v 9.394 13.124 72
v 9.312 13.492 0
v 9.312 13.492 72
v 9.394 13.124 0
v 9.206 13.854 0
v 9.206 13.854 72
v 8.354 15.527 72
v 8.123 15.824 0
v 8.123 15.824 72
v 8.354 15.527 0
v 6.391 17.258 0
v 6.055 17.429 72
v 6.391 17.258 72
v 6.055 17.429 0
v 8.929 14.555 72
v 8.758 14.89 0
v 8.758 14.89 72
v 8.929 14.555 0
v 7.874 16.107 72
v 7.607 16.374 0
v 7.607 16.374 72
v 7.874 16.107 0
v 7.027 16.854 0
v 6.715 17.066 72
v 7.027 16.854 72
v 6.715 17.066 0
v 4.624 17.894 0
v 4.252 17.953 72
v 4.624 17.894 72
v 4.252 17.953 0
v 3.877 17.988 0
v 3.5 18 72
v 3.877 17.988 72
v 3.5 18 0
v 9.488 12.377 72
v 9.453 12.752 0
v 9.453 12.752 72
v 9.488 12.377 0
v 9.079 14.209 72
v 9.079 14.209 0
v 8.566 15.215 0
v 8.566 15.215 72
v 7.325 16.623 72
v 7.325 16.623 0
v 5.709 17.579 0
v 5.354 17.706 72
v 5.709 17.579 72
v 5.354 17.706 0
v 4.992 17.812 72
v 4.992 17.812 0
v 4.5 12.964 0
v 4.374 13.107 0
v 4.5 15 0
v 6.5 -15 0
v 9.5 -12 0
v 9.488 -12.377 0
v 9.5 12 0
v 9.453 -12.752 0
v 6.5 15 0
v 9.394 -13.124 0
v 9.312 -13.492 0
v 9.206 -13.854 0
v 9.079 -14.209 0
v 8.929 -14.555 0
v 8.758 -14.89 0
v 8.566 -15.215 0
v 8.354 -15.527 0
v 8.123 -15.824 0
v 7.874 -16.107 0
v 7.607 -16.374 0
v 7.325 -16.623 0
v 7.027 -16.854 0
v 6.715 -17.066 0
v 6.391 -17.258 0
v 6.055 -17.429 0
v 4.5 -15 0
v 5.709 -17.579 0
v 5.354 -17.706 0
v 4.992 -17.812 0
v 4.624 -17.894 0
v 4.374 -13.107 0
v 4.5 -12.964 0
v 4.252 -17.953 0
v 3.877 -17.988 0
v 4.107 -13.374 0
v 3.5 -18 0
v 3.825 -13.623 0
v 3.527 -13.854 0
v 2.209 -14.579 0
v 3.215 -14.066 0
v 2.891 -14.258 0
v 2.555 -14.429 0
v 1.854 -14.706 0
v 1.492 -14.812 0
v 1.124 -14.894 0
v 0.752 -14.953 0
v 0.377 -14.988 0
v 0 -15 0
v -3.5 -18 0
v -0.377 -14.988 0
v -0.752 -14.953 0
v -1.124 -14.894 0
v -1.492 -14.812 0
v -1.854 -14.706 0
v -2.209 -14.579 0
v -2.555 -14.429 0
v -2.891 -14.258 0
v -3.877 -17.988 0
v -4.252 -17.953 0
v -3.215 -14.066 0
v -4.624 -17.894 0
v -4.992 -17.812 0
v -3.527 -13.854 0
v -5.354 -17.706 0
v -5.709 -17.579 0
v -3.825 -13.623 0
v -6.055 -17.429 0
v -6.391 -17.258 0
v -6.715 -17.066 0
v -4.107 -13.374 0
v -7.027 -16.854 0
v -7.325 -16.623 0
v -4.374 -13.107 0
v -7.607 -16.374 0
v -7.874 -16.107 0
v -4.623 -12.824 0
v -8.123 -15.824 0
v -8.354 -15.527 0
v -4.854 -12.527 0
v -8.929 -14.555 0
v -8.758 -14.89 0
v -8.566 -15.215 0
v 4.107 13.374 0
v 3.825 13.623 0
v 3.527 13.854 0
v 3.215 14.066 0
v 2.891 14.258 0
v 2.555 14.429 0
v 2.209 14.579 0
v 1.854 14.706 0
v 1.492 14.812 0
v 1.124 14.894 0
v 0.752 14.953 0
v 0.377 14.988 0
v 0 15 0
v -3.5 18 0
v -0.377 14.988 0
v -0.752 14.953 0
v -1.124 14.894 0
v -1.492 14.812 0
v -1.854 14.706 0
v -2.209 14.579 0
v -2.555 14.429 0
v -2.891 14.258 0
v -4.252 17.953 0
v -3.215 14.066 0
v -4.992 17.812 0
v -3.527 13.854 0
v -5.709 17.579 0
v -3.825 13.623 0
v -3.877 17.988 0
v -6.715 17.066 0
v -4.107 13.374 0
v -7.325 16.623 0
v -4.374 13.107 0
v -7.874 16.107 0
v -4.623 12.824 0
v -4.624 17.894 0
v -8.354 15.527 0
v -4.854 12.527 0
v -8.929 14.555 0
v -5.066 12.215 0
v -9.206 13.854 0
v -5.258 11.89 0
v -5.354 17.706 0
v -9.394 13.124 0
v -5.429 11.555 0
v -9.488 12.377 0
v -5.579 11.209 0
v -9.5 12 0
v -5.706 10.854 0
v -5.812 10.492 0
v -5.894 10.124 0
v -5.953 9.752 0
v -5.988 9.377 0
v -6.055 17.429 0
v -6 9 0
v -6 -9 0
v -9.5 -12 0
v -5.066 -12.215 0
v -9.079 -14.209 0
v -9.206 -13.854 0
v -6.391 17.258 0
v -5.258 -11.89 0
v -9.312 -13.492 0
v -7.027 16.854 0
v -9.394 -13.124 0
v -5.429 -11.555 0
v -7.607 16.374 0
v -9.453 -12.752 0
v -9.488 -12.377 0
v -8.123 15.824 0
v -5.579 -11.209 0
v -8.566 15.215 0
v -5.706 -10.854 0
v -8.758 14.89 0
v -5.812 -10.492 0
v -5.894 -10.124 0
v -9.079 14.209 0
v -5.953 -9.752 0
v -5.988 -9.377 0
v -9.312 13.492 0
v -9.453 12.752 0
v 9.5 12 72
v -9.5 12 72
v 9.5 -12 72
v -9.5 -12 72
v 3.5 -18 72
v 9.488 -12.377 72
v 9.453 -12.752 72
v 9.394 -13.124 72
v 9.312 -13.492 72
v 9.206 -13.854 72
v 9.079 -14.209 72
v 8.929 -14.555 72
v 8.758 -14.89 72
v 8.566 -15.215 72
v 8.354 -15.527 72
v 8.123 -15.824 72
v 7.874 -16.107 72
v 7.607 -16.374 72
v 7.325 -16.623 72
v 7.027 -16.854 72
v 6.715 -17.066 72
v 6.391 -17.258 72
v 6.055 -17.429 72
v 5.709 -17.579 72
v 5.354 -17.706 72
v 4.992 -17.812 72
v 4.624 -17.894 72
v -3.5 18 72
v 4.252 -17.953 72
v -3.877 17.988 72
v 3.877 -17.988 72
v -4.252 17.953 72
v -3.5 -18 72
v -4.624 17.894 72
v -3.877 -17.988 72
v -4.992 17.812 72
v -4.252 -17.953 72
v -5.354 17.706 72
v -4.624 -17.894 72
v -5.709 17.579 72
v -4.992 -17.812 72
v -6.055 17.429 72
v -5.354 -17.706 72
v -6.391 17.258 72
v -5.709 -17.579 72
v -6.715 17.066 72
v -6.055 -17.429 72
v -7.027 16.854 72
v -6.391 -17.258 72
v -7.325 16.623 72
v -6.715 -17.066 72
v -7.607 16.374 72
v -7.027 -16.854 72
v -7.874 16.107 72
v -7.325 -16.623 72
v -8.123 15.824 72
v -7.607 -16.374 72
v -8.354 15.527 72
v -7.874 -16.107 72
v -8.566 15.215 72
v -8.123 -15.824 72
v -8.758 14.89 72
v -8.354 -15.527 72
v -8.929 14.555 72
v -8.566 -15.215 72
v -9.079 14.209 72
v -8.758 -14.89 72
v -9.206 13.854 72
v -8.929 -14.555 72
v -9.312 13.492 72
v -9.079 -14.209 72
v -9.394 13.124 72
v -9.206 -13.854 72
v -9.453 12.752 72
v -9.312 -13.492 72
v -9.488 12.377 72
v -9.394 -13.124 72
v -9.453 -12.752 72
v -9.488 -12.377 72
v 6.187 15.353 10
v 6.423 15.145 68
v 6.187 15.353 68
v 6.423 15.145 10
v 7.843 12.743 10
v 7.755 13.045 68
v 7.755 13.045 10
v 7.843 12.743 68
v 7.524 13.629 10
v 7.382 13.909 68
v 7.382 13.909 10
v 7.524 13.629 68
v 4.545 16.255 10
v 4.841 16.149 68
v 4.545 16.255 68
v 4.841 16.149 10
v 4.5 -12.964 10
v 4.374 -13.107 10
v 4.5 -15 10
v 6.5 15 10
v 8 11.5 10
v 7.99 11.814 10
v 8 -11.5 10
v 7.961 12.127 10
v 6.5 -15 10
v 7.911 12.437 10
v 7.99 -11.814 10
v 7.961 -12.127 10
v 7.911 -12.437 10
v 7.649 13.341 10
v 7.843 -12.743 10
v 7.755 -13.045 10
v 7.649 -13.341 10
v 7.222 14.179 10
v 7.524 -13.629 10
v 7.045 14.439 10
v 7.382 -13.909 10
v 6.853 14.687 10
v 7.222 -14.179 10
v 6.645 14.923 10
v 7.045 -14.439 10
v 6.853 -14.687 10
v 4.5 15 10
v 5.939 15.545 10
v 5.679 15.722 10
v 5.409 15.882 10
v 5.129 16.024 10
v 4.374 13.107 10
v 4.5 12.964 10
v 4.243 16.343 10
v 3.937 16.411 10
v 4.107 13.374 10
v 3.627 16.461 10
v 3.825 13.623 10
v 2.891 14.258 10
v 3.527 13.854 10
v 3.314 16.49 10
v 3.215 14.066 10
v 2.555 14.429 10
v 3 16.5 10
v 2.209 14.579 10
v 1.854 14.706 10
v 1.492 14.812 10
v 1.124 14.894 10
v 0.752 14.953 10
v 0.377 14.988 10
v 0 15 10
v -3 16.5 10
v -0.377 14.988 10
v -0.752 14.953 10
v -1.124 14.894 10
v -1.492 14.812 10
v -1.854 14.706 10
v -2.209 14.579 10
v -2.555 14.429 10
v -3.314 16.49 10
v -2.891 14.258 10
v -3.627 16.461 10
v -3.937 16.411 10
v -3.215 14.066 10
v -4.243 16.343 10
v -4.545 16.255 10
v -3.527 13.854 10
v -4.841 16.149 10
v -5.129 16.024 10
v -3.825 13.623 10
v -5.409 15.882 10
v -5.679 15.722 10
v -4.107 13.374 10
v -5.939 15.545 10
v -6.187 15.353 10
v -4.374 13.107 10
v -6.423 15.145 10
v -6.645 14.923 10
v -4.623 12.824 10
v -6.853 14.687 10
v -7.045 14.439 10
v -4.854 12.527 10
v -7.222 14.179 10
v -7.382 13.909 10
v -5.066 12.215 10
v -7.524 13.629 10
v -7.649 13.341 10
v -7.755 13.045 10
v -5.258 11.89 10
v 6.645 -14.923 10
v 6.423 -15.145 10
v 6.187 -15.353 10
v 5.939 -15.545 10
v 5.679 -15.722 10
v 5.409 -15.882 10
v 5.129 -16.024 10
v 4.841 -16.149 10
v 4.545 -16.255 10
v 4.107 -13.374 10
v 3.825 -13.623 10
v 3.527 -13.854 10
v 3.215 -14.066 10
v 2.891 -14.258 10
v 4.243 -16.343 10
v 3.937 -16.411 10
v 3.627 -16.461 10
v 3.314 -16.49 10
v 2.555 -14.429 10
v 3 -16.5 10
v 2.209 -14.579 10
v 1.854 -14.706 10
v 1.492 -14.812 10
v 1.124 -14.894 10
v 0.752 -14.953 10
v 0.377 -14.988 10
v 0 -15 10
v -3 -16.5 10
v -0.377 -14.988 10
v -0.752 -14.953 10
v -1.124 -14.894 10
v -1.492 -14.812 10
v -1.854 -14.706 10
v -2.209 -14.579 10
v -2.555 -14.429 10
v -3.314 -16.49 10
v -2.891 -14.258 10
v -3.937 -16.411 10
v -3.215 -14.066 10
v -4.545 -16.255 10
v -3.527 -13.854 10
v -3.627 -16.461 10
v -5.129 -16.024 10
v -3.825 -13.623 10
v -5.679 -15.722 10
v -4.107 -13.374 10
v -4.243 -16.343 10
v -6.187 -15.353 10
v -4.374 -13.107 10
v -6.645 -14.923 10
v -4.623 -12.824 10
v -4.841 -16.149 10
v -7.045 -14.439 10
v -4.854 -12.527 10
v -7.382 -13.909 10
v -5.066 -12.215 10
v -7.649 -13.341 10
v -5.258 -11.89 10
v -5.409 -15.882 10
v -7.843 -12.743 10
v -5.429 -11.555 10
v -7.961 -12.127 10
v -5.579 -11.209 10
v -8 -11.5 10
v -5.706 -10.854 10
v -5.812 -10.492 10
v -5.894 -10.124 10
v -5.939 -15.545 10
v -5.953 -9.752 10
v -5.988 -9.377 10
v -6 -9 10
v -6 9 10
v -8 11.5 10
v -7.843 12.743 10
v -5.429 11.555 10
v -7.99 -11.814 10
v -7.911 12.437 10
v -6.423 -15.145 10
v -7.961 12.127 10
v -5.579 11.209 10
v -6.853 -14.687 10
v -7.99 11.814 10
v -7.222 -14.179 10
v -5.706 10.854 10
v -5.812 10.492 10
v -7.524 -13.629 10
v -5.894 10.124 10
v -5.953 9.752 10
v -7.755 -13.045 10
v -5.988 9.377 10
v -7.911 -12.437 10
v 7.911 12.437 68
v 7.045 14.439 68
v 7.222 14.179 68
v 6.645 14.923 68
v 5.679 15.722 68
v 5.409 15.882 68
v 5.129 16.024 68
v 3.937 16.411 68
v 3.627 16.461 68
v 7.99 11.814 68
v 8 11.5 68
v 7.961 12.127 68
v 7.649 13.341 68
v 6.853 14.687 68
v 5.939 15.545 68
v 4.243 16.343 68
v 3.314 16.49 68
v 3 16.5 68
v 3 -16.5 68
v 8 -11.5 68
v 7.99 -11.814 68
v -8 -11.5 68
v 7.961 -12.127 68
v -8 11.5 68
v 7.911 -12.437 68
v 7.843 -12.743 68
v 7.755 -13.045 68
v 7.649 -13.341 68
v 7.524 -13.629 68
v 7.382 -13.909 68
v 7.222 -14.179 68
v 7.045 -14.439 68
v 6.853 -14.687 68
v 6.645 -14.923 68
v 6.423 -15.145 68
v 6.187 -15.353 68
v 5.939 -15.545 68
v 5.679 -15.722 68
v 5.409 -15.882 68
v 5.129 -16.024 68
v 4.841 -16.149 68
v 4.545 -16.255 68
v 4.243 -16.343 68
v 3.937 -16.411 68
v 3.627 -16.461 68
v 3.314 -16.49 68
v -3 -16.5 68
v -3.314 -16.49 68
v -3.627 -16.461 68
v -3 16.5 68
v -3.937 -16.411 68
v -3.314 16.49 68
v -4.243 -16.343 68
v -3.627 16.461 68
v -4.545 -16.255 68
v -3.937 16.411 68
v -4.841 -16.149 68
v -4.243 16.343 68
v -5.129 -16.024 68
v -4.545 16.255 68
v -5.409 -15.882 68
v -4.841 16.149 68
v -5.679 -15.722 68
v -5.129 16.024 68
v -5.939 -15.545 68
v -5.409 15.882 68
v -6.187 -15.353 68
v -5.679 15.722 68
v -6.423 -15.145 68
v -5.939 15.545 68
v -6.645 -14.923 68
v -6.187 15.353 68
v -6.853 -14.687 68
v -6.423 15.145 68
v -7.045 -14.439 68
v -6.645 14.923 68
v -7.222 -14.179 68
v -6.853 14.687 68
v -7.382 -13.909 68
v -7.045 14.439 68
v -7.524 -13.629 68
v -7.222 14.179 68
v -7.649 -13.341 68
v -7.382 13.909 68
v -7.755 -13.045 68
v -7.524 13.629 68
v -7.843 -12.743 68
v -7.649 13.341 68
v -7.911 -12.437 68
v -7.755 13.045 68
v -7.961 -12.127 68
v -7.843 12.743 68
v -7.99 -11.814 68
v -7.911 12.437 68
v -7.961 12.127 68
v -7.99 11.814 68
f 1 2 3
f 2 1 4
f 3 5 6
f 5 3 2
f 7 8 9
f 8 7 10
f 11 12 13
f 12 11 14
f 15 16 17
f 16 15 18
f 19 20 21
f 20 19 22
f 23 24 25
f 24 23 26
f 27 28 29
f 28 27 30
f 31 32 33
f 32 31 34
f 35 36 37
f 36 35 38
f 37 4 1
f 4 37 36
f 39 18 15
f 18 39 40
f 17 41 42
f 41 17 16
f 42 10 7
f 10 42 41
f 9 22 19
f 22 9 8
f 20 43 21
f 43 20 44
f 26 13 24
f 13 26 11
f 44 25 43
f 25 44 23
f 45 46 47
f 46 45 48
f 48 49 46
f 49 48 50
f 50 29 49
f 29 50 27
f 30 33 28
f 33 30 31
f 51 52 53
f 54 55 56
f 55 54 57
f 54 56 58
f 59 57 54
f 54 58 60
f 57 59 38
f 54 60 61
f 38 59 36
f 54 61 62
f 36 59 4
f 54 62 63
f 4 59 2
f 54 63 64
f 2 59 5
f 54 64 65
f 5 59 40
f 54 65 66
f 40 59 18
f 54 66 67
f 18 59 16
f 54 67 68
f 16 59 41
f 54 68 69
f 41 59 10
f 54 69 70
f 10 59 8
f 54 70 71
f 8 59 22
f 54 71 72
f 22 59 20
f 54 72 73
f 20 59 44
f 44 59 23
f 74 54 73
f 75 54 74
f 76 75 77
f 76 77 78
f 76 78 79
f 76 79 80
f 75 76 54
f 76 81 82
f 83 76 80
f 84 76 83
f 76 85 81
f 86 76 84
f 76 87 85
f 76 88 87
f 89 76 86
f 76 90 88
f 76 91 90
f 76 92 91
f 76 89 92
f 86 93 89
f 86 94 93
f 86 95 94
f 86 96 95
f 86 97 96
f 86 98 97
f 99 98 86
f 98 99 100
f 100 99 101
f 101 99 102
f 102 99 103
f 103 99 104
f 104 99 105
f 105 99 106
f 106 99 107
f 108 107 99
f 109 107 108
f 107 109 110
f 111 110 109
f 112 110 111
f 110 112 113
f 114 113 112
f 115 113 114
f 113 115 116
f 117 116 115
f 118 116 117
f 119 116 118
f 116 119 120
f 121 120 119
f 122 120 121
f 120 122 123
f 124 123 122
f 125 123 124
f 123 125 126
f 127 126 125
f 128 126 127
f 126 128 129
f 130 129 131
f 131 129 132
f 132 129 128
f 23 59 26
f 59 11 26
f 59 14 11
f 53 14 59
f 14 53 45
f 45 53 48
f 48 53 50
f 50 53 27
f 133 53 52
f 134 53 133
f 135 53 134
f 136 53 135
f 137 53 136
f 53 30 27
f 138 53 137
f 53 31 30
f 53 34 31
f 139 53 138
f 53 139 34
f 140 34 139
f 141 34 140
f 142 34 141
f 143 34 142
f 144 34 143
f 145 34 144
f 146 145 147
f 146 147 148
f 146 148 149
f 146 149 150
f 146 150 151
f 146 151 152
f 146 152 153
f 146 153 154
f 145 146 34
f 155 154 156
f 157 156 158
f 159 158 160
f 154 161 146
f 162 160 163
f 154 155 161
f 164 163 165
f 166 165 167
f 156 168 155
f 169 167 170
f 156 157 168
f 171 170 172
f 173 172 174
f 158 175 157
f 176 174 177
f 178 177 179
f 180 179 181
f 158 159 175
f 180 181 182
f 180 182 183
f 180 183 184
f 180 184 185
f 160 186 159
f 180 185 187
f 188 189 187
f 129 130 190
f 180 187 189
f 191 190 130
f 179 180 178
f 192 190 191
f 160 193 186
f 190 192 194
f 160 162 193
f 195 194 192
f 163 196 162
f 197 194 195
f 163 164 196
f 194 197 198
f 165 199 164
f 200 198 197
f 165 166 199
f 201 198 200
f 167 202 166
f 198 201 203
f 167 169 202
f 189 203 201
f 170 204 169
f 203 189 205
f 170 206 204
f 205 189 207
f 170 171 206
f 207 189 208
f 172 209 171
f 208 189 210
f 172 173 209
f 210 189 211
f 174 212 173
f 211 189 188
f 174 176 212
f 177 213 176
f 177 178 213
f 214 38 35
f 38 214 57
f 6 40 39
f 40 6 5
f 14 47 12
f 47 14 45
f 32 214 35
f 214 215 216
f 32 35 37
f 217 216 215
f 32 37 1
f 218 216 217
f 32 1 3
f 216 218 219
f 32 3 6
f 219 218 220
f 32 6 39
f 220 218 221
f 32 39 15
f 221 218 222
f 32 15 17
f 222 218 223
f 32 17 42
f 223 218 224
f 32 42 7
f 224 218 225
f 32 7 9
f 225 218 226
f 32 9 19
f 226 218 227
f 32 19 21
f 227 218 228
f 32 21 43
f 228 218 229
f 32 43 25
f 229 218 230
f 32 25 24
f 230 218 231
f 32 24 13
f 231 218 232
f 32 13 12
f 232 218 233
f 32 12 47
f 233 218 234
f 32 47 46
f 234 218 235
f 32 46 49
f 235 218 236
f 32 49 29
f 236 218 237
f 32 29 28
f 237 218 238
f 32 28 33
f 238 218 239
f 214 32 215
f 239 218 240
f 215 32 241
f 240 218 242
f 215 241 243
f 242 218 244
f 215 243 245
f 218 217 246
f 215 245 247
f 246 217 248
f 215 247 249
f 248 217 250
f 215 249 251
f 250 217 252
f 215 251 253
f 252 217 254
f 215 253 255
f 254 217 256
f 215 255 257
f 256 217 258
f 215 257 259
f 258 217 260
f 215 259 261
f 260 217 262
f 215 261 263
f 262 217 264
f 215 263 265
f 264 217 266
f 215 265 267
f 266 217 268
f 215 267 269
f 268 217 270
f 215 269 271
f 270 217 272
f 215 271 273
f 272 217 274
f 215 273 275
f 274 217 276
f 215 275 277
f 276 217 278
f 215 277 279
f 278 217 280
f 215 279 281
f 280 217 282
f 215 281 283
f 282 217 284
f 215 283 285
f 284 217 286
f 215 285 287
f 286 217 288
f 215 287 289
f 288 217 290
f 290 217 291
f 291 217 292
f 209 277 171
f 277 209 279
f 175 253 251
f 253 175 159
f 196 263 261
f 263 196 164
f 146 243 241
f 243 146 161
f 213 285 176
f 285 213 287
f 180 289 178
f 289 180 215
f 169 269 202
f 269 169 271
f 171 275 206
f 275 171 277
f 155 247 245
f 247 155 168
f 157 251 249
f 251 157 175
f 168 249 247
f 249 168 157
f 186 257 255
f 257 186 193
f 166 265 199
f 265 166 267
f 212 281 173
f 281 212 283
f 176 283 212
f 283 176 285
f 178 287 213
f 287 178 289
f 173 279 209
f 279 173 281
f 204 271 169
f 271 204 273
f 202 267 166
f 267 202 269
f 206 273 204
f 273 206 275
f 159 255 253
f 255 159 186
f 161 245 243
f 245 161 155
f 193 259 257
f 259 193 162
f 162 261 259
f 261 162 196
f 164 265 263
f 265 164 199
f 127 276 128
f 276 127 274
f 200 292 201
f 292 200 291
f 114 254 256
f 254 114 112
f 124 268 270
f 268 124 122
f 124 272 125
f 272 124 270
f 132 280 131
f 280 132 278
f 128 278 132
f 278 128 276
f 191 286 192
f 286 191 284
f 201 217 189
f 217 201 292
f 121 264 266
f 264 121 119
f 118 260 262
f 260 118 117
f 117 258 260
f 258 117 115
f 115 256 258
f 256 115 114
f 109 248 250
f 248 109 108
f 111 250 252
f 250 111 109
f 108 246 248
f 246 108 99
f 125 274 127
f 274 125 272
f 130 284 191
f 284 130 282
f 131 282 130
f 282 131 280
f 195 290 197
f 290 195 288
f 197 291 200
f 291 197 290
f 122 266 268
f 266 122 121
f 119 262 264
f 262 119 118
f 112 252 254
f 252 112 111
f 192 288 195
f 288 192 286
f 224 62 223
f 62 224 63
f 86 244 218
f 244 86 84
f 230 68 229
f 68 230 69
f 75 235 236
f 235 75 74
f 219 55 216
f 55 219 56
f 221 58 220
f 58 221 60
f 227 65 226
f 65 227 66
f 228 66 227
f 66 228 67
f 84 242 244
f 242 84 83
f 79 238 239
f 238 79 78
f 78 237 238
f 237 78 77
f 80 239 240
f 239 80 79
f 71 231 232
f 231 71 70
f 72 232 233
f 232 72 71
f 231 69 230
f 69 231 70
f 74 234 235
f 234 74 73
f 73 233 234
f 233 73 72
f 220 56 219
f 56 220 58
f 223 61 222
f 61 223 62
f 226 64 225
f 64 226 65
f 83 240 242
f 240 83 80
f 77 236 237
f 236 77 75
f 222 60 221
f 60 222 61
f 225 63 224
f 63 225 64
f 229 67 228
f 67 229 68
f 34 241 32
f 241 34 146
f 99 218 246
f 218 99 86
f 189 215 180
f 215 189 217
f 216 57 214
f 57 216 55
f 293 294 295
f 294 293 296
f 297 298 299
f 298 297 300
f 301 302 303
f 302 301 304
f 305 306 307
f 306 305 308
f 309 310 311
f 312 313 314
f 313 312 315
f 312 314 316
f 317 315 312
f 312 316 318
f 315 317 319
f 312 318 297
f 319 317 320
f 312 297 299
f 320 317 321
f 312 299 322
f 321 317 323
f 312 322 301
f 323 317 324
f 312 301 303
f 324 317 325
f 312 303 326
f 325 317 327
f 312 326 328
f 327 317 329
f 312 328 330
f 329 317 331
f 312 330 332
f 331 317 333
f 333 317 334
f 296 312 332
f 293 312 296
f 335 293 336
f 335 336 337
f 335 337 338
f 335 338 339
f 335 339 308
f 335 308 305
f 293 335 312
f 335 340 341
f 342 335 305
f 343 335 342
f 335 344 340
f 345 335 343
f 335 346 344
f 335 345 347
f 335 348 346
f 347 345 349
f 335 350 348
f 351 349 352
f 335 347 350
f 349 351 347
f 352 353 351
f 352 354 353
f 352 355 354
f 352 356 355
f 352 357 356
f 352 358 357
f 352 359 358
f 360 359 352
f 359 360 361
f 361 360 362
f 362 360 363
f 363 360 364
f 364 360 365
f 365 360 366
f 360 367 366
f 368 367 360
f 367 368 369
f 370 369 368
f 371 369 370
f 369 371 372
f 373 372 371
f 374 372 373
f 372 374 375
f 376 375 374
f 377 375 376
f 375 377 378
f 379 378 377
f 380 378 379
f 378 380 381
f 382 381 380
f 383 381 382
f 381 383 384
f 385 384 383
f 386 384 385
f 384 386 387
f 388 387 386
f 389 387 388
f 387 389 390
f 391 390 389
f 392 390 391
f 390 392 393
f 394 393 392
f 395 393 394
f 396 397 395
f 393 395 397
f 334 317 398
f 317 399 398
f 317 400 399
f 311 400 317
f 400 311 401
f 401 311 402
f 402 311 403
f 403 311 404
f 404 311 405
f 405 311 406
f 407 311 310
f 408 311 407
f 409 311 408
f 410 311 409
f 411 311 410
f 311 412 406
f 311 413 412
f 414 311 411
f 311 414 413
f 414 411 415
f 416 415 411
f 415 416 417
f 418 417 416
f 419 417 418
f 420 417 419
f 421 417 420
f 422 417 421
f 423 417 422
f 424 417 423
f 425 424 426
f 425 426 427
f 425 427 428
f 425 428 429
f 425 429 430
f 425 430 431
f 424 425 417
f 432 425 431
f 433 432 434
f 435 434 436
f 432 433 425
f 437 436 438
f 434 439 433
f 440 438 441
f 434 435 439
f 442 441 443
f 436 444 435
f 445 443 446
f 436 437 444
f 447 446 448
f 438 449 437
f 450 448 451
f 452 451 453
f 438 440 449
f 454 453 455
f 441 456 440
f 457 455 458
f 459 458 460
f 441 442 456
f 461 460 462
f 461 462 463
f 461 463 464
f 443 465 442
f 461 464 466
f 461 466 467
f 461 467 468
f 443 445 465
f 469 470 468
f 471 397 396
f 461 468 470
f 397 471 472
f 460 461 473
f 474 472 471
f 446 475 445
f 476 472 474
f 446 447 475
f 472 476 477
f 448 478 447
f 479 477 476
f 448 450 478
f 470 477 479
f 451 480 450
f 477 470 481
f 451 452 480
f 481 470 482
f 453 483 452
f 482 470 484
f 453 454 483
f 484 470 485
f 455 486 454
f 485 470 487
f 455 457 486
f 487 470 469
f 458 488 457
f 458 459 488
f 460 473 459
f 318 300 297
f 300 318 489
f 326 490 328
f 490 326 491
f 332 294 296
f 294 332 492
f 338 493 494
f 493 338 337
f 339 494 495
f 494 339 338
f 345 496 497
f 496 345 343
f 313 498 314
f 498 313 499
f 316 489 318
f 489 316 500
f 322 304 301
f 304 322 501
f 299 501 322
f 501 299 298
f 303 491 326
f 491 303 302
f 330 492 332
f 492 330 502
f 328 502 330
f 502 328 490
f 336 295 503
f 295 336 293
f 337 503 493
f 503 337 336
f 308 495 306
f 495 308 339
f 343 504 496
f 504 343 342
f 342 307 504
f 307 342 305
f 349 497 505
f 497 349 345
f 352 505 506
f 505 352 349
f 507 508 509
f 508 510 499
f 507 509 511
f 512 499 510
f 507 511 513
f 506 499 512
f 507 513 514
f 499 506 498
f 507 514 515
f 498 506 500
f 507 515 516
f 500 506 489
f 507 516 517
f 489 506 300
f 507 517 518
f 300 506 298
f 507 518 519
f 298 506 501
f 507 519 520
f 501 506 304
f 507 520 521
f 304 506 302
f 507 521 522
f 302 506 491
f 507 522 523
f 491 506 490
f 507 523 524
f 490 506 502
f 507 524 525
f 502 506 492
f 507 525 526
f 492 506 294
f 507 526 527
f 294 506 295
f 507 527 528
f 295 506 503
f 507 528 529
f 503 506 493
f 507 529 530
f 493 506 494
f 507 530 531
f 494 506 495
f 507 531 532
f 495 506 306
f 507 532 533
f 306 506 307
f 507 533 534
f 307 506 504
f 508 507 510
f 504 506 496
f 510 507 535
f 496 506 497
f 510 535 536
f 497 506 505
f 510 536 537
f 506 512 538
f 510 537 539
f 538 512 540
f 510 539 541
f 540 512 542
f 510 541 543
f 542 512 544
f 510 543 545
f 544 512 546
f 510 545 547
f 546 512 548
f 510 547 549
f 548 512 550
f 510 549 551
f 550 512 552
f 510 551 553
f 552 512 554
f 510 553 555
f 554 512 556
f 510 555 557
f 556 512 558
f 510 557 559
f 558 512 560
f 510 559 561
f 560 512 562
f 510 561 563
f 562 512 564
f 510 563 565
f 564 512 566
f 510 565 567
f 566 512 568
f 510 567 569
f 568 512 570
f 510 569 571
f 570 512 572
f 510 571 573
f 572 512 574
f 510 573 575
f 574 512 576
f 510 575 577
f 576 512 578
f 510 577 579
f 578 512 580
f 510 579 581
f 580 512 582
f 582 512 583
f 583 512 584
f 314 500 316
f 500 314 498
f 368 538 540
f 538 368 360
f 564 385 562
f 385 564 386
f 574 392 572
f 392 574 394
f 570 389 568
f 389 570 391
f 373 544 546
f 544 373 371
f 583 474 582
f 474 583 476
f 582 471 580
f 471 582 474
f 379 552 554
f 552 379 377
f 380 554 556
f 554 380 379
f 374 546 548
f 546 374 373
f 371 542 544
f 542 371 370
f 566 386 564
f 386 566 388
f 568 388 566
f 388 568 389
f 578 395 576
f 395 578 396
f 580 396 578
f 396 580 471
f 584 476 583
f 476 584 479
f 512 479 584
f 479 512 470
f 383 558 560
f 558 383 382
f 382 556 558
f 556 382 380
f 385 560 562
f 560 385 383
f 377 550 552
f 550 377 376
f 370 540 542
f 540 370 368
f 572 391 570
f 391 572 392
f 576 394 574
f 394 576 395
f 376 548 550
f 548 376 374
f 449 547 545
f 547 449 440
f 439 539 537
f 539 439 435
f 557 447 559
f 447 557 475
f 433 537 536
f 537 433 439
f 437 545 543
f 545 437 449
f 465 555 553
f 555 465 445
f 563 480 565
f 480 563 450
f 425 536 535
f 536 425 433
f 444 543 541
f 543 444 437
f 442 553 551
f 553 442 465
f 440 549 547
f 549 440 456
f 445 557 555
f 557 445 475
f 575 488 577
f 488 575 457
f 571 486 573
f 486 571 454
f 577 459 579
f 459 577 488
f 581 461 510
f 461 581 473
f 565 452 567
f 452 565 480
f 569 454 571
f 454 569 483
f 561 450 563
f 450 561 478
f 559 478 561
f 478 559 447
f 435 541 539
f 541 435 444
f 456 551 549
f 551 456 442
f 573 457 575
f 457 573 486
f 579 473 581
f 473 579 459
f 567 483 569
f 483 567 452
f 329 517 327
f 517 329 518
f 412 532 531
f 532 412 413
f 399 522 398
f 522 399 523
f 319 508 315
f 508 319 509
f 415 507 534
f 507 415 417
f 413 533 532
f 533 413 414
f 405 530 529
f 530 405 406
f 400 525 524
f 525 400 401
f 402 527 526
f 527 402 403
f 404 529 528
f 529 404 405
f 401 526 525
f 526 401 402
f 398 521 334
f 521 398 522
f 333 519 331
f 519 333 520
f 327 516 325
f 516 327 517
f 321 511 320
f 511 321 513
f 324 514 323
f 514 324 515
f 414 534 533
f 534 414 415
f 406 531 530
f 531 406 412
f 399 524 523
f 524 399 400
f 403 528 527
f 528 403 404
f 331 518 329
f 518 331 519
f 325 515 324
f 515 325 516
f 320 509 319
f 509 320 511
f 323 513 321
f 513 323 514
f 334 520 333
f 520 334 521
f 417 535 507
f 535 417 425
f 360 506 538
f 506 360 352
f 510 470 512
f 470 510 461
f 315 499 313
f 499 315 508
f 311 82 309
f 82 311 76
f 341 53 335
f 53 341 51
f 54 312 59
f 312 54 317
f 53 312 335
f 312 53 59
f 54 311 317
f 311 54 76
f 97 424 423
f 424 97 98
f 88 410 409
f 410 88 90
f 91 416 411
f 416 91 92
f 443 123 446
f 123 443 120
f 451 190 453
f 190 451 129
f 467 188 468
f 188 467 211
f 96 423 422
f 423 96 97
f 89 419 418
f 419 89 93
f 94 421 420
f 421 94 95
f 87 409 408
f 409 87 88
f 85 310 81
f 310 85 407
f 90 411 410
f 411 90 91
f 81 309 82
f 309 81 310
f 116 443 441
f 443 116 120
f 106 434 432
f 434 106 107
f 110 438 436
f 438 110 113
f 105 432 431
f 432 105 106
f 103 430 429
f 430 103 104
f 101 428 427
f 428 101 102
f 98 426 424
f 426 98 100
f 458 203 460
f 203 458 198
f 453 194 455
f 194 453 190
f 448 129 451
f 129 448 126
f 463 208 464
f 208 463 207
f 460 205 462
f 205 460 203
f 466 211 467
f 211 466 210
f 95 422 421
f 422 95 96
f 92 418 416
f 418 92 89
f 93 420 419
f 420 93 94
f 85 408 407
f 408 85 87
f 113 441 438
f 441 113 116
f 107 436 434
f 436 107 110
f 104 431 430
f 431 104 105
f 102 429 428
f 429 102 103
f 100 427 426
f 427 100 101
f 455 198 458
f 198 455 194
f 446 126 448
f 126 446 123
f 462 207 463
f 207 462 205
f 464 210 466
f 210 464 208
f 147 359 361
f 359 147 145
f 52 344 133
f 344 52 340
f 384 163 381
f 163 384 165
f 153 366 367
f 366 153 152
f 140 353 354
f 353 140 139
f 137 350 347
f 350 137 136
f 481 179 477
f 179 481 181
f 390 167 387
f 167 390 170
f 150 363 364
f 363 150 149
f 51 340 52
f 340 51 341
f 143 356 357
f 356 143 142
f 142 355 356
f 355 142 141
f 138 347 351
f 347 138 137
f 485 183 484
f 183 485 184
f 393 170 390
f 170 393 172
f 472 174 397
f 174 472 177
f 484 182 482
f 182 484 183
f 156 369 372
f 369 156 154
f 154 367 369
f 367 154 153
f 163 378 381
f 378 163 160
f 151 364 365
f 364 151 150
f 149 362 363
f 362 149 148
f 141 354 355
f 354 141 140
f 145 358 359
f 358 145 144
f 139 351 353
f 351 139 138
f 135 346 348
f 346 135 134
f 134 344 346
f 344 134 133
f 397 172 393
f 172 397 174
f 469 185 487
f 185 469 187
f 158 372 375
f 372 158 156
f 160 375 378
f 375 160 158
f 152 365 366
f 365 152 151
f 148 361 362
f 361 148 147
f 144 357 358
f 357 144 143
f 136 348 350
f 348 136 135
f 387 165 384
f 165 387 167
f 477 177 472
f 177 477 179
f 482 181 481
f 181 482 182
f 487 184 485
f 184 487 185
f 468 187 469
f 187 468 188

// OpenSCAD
$fn=100;
module tube(d=15,w=30,h=70) {
    translate([0,(w-d)/2,0])
    cylinder(d=d,h=h);
    translate([0,-(w-d)/2,0])
    cylinder(d=d,h=h);
    translate([-d/2,-(w-d)/2,0])
    cube([d,(w-d),h]);
}
module tube2(d=10,w=33,h=70,t=16) {
   
    translate([(t-d)/2,(w-d)/2,0])
    cylinder(d=d,h=h);
    translate([-(t-d)/2,(w-d)/2,0])
    cylinder(d=d,h=h);
    translate([-(t-d)/2,-(w-d)/2,0])
    cylinder(d=d,h=h);
    translate([(t-d)/2,-(w-d)/2,0])
    cylinder(d=d,h=h);
    
    translate([-(t-d)/2,-(w)/2,0])
    cube([(t-d),w,h]);
    translate([-(t)/2,-(w-d)/2,0])
    cube([t,(w-d),h]);
    
}
module board() {
    translate([4.5,-15,0])
    cube([2,30,67]);
    translate([0,-(30-12)/2,0])
    cylinder(d=12,h=12);
    translate([0,(30-12)/2,0])
    cylinder(d=12,h=12);
    translate([-(12)/2,-(30-12)/2,0])
    cube([12,(30-12),12]);
    
}

difference() {
    translate([0,0,0])
tube2(d=12,w=36,h=72,t=19);
    translate([0,0,10])
tube2(h=(70-12));
translate([0,0,-1])
board();
}
